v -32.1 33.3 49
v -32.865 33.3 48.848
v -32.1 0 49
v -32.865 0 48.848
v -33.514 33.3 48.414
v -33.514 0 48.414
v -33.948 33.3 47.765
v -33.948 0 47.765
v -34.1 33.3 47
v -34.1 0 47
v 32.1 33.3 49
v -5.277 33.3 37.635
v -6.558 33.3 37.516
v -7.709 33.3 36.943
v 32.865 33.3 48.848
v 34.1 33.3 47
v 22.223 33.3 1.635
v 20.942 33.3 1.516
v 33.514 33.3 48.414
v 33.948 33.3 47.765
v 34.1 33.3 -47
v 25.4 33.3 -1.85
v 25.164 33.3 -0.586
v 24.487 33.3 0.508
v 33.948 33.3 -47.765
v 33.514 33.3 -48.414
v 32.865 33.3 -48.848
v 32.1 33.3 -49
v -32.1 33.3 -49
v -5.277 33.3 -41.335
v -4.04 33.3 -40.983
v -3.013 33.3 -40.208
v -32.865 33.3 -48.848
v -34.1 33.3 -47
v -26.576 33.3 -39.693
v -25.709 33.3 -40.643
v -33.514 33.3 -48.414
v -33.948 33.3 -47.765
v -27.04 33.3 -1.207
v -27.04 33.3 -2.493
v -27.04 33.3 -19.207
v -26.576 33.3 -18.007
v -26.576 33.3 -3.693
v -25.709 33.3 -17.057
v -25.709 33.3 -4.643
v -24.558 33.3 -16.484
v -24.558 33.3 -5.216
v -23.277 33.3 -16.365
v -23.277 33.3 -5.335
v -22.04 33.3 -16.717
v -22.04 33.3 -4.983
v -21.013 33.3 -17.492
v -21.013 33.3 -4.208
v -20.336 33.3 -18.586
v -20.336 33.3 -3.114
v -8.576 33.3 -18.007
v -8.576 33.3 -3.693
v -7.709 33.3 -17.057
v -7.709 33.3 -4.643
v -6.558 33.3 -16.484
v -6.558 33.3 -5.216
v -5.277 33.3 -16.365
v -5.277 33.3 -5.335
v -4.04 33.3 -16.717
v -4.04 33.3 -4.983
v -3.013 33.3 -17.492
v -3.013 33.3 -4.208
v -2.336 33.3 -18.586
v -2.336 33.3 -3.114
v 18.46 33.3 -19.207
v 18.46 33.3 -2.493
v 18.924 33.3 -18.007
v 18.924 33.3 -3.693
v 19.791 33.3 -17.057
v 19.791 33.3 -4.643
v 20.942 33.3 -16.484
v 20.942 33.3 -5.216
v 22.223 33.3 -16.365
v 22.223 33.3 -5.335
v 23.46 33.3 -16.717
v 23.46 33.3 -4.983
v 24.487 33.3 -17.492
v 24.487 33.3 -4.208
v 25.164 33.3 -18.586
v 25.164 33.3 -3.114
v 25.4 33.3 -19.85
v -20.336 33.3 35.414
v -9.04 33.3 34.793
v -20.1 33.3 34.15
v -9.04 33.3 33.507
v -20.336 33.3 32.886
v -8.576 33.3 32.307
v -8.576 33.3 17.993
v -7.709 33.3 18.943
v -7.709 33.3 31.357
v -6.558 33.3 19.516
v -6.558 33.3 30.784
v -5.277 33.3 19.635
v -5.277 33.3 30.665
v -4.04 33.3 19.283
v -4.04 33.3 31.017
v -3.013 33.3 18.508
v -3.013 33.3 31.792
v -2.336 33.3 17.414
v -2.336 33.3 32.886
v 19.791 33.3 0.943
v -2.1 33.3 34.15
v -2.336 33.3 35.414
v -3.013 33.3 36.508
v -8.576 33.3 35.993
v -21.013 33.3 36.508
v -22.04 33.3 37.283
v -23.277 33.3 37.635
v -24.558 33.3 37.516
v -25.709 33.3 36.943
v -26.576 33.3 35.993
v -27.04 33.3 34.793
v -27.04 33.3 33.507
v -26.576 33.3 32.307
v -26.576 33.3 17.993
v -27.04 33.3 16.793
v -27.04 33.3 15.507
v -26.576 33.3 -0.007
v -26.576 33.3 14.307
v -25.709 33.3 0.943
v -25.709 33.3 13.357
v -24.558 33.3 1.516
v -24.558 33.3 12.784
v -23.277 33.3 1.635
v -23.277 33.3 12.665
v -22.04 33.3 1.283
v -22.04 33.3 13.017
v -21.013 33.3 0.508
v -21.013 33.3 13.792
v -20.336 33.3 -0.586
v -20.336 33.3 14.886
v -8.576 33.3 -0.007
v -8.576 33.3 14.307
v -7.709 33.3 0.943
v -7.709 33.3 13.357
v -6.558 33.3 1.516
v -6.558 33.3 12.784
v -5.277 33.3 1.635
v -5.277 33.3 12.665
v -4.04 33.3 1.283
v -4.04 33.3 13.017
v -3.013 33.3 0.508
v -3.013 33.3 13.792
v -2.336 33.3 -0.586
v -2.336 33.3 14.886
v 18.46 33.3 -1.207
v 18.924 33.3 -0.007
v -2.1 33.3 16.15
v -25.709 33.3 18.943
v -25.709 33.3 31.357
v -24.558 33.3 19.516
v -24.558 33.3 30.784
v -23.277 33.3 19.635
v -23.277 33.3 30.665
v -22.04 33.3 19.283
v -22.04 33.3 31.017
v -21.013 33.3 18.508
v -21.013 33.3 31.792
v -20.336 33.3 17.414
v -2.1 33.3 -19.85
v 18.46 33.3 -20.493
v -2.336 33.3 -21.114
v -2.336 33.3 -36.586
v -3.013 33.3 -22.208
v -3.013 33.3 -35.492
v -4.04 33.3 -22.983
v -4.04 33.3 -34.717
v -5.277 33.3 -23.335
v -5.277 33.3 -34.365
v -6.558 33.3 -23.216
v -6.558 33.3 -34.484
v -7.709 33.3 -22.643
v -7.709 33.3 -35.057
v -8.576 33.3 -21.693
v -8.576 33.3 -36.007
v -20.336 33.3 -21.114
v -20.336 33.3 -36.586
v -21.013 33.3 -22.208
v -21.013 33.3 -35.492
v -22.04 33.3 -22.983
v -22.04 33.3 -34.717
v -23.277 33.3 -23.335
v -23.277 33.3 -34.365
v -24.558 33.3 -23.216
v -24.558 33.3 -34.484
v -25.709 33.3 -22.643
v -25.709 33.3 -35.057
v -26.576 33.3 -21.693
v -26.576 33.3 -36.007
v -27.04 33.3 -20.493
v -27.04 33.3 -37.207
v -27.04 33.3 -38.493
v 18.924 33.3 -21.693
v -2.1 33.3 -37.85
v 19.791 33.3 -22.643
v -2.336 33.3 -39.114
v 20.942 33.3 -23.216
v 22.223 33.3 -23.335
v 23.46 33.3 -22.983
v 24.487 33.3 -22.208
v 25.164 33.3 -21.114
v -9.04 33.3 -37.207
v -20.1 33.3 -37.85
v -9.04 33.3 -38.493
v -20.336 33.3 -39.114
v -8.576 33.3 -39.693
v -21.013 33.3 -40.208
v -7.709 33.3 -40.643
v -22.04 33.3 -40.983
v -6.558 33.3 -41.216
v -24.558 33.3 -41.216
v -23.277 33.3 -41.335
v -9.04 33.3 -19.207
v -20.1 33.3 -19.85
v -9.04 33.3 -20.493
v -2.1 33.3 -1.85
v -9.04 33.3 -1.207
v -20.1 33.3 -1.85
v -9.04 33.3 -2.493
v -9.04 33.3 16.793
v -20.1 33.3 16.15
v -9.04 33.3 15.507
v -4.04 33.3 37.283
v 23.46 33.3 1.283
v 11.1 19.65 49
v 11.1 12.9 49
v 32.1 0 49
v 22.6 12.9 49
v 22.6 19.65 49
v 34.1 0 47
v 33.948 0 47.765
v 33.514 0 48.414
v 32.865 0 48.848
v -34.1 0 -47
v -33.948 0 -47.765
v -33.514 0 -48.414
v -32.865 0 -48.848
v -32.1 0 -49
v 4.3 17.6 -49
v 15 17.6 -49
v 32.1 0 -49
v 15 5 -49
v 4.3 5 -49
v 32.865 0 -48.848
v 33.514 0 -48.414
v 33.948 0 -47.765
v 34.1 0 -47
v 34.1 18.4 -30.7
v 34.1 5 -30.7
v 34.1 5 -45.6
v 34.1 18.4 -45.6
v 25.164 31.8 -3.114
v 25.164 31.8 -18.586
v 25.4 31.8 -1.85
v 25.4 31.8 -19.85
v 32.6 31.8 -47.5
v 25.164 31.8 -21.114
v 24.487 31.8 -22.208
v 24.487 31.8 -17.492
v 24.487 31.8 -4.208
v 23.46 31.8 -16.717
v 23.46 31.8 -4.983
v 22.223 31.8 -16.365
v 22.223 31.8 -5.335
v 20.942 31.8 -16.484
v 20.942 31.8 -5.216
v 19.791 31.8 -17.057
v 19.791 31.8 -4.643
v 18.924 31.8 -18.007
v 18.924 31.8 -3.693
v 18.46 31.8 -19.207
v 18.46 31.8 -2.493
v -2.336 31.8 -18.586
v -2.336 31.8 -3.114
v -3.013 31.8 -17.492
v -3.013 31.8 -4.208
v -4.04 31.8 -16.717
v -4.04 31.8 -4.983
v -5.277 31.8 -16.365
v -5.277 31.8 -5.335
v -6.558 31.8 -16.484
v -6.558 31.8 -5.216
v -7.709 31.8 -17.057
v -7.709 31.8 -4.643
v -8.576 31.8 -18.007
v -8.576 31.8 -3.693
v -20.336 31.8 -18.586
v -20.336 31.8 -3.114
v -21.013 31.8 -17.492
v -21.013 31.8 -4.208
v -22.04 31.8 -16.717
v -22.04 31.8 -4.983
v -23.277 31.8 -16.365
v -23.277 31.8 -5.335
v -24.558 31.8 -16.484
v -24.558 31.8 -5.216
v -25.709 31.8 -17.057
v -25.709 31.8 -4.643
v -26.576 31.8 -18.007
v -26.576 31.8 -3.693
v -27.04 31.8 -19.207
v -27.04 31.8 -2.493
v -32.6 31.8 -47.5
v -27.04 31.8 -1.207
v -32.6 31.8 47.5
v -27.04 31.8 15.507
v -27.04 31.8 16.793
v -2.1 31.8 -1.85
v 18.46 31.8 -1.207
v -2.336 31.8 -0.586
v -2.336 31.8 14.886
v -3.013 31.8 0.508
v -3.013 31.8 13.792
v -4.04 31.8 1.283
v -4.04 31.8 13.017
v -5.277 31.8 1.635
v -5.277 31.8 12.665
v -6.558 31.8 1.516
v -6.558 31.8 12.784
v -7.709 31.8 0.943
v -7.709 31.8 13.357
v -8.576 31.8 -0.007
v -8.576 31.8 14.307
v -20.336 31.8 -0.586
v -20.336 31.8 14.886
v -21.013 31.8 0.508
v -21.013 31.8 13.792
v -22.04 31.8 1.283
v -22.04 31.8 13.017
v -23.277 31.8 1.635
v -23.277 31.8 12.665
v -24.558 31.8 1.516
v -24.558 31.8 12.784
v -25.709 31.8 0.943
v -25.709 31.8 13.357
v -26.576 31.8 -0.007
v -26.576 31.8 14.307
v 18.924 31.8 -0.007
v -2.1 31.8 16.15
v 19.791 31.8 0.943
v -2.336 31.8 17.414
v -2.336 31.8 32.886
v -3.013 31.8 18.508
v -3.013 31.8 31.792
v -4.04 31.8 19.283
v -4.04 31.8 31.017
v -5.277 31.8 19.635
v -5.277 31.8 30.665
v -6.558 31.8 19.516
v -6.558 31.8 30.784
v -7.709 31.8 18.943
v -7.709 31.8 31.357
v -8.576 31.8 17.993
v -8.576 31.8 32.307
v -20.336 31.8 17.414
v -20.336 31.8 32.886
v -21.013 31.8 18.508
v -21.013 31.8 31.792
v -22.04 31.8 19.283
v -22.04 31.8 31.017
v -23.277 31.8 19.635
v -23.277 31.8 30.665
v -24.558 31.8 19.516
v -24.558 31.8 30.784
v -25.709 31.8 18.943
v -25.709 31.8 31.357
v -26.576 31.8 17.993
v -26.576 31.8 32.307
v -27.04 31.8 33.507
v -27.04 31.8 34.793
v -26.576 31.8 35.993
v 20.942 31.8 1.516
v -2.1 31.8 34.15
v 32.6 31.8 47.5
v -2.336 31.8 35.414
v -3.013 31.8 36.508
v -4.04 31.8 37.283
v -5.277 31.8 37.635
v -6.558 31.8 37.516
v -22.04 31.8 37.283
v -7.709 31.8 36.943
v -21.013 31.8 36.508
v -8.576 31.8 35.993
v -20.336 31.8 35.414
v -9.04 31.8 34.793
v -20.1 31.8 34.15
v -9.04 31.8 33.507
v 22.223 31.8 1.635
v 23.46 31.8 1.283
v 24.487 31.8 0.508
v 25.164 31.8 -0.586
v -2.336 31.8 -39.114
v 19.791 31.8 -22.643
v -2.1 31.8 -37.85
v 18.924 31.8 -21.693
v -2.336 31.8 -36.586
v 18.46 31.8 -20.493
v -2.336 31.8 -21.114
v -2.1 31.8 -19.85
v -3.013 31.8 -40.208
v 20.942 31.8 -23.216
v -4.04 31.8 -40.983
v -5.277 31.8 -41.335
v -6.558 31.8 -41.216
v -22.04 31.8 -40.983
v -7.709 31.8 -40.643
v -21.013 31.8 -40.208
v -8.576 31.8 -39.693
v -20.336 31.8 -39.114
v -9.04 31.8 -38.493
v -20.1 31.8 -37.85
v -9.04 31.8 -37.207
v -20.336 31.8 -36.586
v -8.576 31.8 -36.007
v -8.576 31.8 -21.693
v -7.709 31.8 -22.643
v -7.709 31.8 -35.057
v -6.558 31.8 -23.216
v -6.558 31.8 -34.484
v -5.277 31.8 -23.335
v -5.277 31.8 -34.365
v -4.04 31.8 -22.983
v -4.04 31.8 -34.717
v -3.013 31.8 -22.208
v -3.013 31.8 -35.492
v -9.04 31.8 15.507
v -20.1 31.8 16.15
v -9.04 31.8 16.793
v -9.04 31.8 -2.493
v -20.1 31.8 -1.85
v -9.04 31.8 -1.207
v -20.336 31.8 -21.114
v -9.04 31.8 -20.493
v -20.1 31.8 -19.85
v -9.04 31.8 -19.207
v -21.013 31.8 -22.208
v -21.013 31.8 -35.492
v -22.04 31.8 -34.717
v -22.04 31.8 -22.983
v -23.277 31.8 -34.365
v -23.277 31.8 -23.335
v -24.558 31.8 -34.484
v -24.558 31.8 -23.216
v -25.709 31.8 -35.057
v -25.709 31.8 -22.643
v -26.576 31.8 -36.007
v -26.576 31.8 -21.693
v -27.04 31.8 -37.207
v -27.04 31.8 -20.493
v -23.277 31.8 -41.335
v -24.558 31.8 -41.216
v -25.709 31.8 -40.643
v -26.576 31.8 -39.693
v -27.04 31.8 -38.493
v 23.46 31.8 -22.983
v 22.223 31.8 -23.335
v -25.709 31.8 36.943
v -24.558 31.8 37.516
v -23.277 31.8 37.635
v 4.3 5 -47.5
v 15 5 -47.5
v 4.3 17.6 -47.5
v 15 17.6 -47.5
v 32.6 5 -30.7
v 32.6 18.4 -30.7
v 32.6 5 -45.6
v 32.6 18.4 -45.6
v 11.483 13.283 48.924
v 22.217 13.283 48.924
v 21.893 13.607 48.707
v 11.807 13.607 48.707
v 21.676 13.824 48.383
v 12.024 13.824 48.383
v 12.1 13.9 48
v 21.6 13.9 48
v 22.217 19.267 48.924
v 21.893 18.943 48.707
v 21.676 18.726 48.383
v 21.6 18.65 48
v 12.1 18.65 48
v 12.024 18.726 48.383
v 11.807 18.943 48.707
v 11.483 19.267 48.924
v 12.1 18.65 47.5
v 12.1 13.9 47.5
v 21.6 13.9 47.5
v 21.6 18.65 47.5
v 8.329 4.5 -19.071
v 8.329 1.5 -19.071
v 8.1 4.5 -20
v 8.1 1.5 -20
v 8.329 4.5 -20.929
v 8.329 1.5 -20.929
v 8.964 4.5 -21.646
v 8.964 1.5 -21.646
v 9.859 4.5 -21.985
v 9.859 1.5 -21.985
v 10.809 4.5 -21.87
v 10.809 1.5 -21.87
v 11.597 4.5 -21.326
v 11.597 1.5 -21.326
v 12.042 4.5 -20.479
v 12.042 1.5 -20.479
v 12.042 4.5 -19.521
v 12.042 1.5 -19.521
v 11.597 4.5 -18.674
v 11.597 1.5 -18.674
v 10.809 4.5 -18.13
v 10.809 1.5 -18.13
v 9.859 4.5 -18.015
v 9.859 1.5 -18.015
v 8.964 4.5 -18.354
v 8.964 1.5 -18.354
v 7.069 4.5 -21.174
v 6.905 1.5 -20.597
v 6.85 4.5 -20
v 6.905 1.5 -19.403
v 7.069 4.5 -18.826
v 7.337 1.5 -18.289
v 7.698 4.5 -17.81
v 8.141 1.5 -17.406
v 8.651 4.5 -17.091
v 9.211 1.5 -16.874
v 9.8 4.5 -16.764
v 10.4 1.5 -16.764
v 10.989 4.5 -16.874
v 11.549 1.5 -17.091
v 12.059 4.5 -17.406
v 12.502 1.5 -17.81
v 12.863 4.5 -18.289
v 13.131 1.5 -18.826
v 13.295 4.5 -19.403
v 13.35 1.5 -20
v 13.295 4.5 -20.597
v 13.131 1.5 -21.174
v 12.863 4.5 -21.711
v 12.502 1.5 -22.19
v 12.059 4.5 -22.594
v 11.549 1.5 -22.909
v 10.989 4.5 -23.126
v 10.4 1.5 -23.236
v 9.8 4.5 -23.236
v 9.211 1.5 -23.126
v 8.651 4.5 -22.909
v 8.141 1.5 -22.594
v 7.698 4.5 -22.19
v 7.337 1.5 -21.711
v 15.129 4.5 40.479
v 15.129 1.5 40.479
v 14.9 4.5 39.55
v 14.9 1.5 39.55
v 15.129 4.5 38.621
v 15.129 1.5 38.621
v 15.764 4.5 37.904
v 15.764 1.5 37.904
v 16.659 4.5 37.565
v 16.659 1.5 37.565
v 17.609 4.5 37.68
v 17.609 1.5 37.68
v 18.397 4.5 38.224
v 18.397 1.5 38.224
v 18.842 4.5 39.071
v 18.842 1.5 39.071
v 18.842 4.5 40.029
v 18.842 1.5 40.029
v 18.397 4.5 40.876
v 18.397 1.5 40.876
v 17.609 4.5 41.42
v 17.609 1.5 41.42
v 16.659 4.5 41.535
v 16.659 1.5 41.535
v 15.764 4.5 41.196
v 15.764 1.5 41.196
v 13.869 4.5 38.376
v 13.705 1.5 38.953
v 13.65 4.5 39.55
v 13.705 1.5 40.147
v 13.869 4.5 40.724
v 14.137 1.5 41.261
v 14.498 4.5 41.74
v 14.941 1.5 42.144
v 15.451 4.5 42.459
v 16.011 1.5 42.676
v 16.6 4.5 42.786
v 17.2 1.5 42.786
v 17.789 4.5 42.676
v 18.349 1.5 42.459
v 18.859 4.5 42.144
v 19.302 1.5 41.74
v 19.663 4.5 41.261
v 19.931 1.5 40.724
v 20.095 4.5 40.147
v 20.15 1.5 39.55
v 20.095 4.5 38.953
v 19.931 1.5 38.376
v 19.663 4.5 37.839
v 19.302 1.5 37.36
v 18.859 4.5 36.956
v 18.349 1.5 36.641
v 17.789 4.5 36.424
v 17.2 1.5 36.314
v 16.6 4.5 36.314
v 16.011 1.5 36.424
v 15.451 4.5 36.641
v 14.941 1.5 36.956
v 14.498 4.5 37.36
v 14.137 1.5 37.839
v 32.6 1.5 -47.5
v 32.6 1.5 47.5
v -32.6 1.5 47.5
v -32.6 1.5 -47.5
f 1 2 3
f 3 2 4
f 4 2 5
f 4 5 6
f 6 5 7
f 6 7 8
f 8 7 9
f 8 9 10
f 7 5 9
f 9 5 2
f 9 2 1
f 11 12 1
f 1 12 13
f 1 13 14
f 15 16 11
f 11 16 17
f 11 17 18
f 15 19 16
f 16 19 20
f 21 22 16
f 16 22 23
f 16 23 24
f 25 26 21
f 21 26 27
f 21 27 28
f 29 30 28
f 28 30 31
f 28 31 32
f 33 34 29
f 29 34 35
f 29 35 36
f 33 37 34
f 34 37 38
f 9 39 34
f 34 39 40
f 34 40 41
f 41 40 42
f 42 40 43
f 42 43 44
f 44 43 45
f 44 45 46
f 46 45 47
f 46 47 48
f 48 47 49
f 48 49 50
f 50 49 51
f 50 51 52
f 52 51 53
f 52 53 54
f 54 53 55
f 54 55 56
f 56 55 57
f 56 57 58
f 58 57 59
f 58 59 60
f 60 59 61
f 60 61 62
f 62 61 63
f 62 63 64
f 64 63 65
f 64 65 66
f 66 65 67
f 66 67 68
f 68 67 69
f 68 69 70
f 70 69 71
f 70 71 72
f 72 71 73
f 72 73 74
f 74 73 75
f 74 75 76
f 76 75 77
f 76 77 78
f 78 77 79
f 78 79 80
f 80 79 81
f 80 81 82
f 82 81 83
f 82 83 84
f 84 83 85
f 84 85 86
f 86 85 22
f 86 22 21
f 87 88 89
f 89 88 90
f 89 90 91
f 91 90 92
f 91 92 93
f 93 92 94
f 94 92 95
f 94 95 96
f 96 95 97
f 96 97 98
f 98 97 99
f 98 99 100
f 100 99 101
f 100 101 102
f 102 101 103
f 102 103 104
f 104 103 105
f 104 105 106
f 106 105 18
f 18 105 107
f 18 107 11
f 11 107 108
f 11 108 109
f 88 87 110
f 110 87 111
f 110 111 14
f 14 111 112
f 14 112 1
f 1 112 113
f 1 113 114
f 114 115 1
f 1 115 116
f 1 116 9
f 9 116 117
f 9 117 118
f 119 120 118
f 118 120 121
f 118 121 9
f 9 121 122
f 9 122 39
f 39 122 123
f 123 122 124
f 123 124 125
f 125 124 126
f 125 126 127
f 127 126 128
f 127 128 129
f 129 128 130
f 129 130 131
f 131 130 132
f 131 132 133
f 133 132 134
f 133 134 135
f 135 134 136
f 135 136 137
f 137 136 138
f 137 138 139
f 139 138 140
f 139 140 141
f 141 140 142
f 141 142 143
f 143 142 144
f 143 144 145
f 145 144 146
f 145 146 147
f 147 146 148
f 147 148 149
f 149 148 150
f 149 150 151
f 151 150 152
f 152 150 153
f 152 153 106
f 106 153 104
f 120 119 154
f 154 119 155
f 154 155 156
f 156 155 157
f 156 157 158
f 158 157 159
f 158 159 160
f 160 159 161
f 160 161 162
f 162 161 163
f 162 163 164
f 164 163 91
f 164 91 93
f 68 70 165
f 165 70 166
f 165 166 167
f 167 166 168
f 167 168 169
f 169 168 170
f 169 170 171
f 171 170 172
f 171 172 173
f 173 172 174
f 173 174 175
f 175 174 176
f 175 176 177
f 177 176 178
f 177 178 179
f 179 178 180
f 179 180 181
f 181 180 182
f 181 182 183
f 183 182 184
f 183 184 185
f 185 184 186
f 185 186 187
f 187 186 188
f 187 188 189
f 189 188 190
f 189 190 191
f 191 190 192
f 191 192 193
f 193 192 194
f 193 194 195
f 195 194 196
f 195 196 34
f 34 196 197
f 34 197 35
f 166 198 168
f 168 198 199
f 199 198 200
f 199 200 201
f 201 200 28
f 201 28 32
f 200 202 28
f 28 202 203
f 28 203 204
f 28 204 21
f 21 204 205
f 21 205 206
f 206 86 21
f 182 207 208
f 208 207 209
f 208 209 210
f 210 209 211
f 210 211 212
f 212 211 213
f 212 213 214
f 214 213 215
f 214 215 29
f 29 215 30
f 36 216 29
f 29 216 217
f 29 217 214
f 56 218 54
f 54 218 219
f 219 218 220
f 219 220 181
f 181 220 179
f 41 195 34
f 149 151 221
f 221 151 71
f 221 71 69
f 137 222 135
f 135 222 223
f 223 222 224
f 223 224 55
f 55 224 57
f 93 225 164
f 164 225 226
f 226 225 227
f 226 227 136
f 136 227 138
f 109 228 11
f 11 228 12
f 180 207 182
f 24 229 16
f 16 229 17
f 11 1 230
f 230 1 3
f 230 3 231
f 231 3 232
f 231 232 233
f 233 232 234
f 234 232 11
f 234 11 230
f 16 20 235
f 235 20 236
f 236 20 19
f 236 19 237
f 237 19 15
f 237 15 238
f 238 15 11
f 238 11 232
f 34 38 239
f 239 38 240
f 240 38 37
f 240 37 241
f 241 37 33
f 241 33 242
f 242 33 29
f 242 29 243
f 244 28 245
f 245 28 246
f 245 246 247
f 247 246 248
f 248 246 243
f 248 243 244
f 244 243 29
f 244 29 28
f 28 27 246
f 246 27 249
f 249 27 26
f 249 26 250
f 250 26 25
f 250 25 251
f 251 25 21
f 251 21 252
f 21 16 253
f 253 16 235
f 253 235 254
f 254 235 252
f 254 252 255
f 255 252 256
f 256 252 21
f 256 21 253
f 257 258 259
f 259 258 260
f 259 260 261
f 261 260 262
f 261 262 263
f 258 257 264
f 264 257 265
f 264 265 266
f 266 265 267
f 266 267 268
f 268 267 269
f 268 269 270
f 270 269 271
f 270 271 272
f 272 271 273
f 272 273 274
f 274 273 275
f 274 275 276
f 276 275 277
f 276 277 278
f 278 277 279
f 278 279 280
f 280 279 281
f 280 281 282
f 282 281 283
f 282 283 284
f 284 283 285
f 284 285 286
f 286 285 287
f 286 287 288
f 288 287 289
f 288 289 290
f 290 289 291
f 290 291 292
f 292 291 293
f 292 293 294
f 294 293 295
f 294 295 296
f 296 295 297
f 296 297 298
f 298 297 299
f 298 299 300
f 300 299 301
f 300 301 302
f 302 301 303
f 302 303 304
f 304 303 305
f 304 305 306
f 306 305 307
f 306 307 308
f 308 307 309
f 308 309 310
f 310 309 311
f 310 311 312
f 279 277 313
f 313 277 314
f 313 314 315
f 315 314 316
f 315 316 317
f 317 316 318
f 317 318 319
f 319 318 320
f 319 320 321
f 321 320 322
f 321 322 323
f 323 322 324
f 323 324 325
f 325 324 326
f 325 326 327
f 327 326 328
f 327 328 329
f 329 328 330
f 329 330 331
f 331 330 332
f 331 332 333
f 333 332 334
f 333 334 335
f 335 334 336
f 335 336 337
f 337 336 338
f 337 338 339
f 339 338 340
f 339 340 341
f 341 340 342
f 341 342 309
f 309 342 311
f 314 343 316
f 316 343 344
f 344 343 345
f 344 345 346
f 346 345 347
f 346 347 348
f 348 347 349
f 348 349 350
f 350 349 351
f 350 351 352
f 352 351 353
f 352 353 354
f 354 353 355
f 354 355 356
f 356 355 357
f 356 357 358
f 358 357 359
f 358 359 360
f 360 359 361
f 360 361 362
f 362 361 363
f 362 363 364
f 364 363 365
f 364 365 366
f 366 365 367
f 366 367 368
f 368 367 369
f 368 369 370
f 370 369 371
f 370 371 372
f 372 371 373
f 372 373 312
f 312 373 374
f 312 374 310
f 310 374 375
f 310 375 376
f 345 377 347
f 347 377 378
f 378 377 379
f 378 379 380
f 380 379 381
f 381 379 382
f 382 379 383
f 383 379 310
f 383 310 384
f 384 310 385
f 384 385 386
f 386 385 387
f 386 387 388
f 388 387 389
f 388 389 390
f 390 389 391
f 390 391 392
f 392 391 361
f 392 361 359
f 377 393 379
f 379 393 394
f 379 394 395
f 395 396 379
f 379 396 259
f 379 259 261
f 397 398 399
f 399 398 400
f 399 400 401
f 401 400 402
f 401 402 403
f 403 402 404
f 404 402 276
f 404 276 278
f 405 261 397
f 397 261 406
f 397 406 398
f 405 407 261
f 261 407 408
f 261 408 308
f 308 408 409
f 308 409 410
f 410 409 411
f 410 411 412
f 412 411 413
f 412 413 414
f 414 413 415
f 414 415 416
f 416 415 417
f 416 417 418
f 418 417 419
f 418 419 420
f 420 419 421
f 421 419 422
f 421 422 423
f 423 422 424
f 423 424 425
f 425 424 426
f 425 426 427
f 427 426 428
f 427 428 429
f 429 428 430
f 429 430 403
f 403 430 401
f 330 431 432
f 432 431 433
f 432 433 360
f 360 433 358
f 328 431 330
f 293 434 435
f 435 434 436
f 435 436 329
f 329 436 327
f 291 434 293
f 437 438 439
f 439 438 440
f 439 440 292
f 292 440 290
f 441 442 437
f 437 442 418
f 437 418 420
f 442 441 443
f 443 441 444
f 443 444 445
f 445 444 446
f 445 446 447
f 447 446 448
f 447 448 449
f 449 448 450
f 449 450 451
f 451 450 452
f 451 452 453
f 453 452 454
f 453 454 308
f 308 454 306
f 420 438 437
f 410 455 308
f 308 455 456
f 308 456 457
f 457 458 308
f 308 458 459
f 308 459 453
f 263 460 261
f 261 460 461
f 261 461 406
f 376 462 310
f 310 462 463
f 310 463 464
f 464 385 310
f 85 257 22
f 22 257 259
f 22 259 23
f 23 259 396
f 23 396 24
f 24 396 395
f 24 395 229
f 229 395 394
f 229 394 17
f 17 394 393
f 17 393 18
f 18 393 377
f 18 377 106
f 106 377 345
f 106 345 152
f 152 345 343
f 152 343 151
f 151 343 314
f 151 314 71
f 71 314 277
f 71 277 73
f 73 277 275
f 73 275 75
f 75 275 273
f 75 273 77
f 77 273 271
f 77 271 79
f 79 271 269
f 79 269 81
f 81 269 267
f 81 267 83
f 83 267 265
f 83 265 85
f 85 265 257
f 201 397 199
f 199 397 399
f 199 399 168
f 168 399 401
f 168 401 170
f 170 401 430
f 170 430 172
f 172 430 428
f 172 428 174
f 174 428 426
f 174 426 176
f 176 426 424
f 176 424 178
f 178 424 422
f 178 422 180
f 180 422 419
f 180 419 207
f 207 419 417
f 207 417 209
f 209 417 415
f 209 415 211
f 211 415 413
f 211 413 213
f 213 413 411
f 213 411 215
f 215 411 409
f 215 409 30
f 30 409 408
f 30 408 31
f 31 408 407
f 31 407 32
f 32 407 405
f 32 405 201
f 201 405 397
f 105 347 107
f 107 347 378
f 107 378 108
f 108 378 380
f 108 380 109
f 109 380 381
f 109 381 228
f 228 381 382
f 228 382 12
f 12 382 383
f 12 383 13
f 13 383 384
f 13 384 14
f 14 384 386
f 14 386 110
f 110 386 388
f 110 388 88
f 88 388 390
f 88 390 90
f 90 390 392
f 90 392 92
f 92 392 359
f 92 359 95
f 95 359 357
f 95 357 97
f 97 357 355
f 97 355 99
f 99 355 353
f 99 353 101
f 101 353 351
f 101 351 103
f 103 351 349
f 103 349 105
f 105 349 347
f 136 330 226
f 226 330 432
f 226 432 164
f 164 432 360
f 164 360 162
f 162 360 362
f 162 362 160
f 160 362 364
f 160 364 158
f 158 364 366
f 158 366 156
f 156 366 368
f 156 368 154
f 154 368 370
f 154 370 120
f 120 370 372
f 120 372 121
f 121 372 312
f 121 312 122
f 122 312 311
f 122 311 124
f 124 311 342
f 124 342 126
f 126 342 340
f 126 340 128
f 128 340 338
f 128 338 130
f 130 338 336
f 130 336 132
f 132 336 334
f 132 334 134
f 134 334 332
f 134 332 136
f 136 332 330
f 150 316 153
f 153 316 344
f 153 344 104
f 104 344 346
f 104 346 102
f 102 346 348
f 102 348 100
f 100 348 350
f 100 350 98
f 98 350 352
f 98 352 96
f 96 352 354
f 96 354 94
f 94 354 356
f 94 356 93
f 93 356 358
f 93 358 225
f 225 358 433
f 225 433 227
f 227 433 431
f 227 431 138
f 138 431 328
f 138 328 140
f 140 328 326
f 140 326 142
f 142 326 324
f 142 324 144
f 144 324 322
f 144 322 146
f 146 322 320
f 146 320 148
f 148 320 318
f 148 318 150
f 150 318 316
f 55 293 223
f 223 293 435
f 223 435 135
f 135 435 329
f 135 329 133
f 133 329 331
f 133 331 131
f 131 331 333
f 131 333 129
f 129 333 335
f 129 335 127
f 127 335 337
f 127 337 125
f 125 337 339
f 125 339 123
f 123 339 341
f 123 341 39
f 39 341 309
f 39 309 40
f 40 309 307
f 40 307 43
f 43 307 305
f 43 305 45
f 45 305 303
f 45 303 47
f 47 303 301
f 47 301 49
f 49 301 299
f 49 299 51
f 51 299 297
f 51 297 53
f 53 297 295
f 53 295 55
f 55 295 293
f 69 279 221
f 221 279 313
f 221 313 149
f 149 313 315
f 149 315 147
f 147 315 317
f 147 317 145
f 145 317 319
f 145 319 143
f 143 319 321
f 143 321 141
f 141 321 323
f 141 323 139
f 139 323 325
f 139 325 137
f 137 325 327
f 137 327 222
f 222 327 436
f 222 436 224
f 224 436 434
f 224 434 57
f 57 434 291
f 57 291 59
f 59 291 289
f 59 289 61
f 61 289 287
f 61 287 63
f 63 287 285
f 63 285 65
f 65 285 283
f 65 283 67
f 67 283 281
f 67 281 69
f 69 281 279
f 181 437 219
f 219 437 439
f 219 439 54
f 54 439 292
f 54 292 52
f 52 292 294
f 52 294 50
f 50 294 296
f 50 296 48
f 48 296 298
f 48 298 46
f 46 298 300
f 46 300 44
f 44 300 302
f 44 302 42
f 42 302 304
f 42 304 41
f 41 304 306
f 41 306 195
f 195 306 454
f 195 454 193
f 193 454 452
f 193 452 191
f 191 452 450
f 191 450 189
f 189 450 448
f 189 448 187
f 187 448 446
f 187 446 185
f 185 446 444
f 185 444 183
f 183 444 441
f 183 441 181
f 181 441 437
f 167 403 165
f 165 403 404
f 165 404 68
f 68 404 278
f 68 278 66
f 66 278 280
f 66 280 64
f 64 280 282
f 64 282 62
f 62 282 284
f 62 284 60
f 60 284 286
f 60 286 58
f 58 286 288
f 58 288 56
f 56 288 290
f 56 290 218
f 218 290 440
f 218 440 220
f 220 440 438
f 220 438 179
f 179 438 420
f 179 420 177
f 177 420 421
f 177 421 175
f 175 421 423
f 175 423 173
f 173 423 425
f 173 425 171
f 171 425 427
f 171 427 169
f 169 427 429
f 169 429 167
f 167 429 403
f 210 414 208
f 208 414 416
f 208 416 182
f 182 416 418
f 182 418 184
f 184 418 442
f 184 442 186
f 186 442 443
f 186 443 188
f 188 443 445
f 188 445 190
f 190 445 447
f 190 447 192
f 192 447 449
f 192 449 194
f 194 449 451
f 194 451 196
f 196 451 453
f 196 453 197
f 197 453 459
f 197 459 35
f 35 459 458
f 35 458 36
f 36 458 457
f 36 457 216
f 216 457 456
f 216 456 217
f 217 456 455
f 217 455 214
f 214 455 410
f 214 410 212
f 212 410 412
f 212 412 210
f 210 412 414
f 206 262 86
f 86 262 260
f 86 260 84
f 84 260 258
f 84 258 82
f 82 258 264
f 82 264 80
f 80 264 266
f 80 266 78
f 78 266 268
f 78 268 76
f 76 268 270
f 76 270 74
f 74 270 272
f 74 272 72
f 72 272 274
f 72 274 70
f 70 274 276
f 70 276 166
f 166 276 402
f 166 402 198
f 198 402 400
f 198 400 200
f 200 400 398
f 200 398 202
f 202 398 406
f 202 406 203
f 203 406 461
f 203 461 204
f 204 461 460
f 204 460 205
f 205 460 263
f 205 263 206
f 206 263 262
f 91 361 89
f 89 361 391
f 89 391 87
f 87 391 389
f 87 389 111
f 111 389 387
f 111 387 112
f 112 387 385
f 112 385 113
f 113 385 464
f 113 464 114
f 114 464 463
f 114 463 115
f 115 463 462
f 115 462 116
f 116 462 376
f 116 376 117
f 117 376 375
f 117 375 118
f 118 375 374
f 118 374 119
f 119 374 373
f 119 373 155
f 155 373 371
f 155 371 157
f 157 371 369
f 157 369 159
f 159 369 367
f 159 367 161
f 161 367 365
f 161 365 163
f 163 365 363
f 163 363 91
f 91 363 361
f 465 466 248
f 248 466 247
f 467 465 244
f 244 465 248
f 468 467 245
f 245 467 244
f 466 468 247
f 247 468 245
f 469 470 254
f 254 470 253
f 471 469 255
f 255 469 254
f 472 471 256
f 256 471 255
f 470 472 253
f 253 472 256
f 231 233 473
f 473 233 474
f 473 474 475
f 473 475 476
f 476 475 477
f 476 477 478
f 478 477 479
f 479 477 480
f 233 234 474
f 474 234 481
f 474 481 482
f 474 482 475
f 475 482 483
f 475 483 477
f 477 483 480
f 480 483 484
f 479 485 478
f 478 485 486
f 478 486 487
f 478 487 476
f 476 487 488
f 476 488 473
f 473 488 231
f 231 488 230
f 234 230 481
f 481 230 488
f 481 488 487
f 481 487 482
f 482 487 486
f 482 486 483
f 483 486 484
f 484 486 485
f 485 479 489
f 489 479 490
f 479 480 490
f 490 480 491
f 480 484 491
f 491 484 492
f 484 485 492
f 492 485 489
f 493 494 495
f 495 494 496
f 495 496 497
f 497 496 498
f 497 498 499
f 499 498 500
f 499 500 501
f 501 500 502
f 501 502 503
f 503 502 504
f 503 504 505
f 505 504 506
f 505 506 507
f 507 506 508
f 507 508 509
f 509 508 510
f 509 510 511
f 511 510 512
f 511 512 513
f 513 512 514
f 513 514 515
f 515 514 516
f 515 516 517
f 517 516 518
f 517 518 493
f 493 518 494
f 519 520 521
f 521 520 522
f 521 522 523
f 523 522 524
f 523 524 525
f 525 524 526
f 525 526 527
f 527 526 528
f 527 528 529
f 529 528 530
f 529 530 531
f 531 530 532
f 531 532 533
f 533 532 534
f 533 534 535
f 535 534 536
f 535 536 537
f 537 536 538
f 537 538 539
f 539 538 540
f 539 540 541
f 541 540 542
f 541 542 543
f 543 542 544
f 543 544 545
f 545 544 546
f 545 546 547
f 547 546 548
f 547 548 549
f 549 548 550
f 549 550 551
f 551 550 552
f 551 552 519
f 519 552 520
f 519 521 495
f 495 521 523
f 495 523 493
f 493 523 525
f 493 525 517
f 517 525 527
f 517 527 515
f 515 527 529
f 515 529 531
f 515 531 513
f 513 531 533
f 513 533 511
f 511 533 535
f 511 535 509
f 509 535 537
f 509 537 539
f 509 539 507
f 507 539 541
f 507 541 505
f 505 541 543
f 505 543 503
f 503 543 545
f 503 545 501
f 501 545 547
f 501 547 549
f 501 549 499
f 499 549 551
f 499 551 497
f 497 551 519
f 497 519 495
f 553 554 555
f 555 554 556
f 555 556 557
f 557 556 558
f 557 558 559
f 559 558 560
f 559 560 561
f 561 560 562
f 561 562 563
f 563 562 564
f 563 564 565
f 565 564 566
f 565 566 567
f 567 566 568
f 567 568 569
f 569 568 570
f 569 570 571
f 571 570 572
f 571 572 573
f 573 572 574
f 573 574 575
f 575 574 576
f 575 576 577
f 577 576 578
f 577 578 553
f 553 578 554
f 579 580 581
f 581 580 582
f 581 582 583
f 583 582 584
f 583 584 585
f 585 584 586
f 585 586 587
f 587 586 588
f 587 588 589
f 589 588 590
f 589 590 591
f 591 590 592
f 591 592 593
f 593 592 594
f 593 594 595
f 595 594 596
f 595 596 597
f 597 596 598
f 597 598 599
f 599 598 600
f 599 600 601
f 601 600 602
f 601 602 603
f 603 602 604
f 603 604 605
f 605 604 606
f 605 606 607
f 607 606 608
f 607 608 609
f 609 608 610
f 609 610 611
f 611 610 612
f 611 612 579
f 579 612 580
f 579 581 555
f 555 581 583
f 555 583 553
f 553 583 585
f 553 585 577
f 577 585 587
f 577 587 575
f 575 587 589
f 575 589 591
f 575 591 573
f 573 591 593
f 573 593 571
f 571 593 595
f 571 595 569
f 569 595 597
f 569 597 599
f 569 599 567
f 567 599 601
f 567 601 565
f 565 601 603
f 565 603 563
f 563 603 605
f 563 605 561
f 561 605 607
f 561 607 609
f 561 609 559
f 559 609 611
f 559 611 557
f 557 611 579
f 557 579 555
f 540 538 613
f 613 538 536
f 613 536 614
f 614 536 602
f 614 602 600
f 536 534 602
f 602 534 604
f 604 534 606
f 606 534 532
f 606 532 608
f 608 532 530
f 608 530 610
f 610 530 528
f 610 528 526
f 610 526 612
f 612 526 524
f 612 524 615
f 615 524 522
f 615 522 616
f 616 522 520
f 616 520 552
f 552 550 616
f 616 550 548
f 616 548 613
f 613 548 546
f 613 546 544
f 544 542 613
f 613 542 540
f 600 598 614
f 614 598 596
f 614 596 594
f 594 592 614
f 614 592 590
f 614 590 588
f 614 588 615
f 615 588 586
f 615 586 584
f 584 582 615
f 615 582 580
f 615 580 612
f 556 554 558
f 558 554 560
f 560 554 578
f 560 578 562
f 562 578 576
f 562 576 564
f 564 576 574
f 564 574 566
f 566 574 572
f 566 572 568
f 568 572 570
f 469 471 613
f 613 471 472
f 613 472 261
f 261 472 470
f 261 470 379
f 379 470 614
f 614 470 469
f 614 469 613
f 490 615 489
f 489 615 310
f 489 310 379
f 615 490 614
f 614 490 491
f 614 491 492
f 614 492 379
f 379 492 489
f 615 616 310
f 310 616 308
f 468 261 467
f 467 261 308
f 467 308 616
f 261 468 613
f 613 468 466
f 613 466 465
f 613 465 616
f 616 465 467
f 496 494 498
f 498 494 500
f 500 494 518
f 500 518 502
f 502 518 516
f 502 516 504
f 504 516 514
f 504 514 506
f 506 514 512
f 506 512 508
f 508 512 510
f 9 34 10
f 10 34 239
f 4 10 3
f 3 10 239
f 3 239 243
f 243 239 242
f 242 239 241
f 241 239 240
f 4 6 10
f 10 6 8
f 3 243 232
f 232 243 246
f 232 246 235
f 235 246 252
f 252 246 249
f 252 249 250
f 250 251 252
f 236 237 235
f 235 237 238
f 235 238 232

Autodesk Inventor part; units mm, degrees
ref_plane "YZ Plane" through (0, 0, 0) normal (1, 0, 0) x (0, 1, 0)
ref_plane "XZ Plane" through (0, 0, 0) normal (0, 1, 0) x (-1, 0, 0)
ref_plane "XY Plane" through (0, 0, 0) normal (0, 0, 1) x (1, 0, 0)
sketch "Sketch1" plane through (0, 0, 0) normal (0, 1, 0) x (-1, 0, 0)
  line L0 (-34.1, -49) -> (34.1, -49)
  line L1 (34.1, -49) -> (34.1, 49)
  line L2 (34.1, 49) -> (-34.1, 49)
  line L3 (-34.1, 49) -> (-34.1, -49)
  line L4 (-34.1, -49) -> (34.1, 49) construction
  line L5 (34.1, -49) -> (-34.1, 49) construction
  circle A0 centre (-16.9, 39.55) radius 2
  circle A1 centre (-16.9, 39.55) radius 3.25
  line L6 (-18.8909, 27.1453) -> (-18.8909, 26.9568)
  circle A2 centre (-10.1, -20) radius 2
  circle A3 centre (-10.1, -20) radius 3.25
  point P0 (0, 0)
  dimension "d0" = 68.2
  dimension "d1" = 98
  dimension "d6" = 4
  dimension "d7" = 6.5
  dimension "d8" = 17.2
  dimension "d9" = 9.45
  dimension "d10" = 24
  dimension "d11" = 29
  dimension "d12" = 4
  dimension "d13" = 6.5
extrude "Extrusion1" add sketch "Sketch1" along normal blind 31.8 contours L3 L2 L1 L0 | A0 | A1 | A2 | A3
shell "Shell1" thickness 1.5 removed faces 1 at (11.3667, 31.8, 16.3333)
extrude "Extrusion2" add sketch "Sketch1" along normal blind 4.5 contours A1 | A3
sketch "Sketch2" plane through (-34.1, 0, 49) normal (0, 0, 1) x (1, 0, 0)
  line L0 (0, 0) -> (68.2, 0) projected
  line L1 (68.2, 0) -> (68.2, 31.8) projected
  line L2 (68.2, 0) -> (68.2, 31.8) projected
  line L3 (68.2, 1.5) -> (40, 1.5)
  line L4 (68, 6) -> (36, 6)
  line L5 (36, 6) -> (36, 4.5)
  line L6 (36, 4.5) -> (68, 4.5)
  line L7 (68, 4.5) -> (68, 6)
  line L8 (47.2, 17.65) -> (54.7, 17.65)
  line L9 (54.7, 17.65) -> (54.7, 14.9)
  line L10 (54.7, 14.9) -> (47.2, 14.9)
  line L11 (47.2, 14.9) -> (47.2, 17.65)
  line L12 (47.2, 17.65) -> (54.7, 14.9)
  line L13 (54.7, 17.65) -> (47.2, 14.9)
  line L14 (55.7, 13.9) -> (46.2, 13.9)
  line L15 (46.2, 13.9) -> (46.2, 18.65)
  line L16 (46.2, 18.65) -> (55.7, 18.65)
  line L17 (55.7, 18.65) -> (55.7, 13.9)
  line L18 (55.7, 13.9) -> (46.2, 18.65) construction
  line L19 (46.2, 13.9) -> (55.7, 18.65) construction
  point P0 (34.1, 0)
  point P1 (50.95, 16.275)
  dimension "d19" = 1.5
  dimension "d20" = 3
  dimension "d21" = 1.5
  dimension "d22" = 8.9
  dimension "d23" = 7.5
  dimension "d24" = 2.75
  dimension "d25" = 13.5
  dimension "d26" = 1
  dimension "d27" = 1
extrude "Extrusion3" cut sketch "Sketch2" against normal blind 4.5 contours L12 L13 L11 | L8 L13 L12 | L9 L12 L13 | L13 L12 L10 | L14 L15 L16 L17
fillet "Fillet1" radius 1 4 edges at (16.85, 18.65, 49) (21.6, 16.275, 49) (16.85, 13.9, 49) (12.1, 16.275, 49)
sketch "Sketch3" plane through (34.1, 0, 49) normal (1, 0, 0) x (0, 0, -1)
  line L0 (0, 0) -> (98, 0) projected
  line L1 (98, 0) -> (98, 31.8) projected
  line L2 (80.7, 17.4) -> (93.6, 17.4)
  line L3 (93.6, 17.4) -> (93.6, 6)
  line L4 (93.6, 6) -> (80.7, 6)
  line L5 (80.7, 6) -> (80.7, 17.4)
  line L6 (80.7, 17.4) -> (93.6, 6) construction
  line L7 (93.6, 17.4) -> (80.7, 6) construction
  line L8 (94.6, 5) -> (79.7, 5)
  line L9 (79.7, 5) -> (79.7, 18.4)
  line L10 (79.7, 18.4) -> (94.6, 18.4)
  line L11 (94.6, 18.4) -> (94.6, 5)
  line L12 (94.6, 5) -> (79.7, 18.4) construction
  line L13 (79.7, 5) -> (94.6, 18.4) construction
  point P0 (49, 0)
  point P1 (87.15, 11.7)
  point P2 (87.15, 11.7)
  dimension "d31" = 6
  dimension "d32" = 4.4
  dimension "d33" = 11.4
  dimension "d34" = 12.9
  dimension "d35" = 1
  dimension "d36" = 1
extrude "Extrusion4" cut sketch "Sketch3" against normal blind 4.5 contours L2 L3 L4 L5 | L8 L9 L10 L11
sketch "Sketch4" plane through (34.1, 0, -49) normal (0, 0, -1) x (-1, 0, 0)
  line L0 (0, 0) -> (68.2, 0) projected
  line L1 (0, 0) -> (0, 31.8) projected
  line L2 (28.8, 6) -> (20.1, 6)
  line L3 (20.1, 6) -> (20.1, 16.6)
  line L4 (20.1, 16.6) -> (28.8, 16.6)
  line L5 (28.8, 16.6) -> (28.8, 6)
  line L6 (28.8, 6) -> (20.1, 16.6) construction
  line L7 (20.1, 6) -> (28.8, 16.6) construction
  line L8 (29.8, 5) -> (19.1, 5)
  line L9 (19.1, 5) -> (19.1, 17.6)
  line L10 (19.1, 17.6) -> (29.8, 17.6)
  line L11 (29.8, 17.6) -> (29.8, 5)
  line L12 (29.8, 5) -> (19.1, 17.6) construction
  line L13 (19.1, 5) -> (29.8, 17.6) construction
  point P0 (34.1, 0)
  point P1 (24.45, 11.3)
  dimension "d39" = 20.1
  dimension "d40" = 6
  dimension "d41" = 8.7
  dimension "d42" = 10.6
  dimension "d43" = 1
  dimension "d44" = 1
extrude "Extrusion5" cut sketch "Sketch4" against normal blind 4.5 contours L2 L3 L4 L5 | L8 L9 L10 L11
sketch "Sketch5" plane through (0, 31.8, 0) normal (0, 1, 0) x (1, 0, 0)
  line L0 (32.6, -47.5) -> (-32.6, -47.5) projected
  line L1 (-32.6, -47.5) -> (-32.6, 47.5) projected
  line L2 (-32.6, 47.5) -> (32.6, 47.5) projected
  line L3 (32.6, 47.5) -> (32.6, -47.5) projected
  line L4 (34.1, -49) -> (34.1, 49) projected
  line L5 (34.1, 49) -> (-34.1, 49) projected
  line L6 (-34.1, 49) -> (-34.1, -49) projected
  line L7 (-34.1, -49) -> (34.1, -49) projected
  line L8 (34.1, -49) -> (-34.1, -49)
  line L9 (-34.1, -49) -> (-34.1, 49)
  line L10 (-34.1, 49) -> (34.1, 49)
  line L11 (34.1, 49) -> (34.1, -49)
  circle A0 centre (-23.6, -34.15) radius 3
  circle A1 centre (-23.6, -34.15) radius 3.5
  circle A2 centre (-5.6, -34.15) radius 3.5
  circle A3 centre (-23.6, -16.15) radius 3.5
  circle A4 centre (-5.6, -16.15) radius 3.5
  circle A5 centre (-23.6, 1.85) radius 3.5
  circle A6 centre (-5.6, 1.85) radius 3.5
  circle A7 centre (-23.6, 19.85) radius 3.5
  circle A8 centre (-5.6, 19.85) radius 3.5
  circle A9 centre (-23.6, 37.85) radius 3.5
  circle A10 centre (-5.6, 37.85) radius 3.5
  circle A11 centre (-5.6, 1.85) radius 3.5
  circle A12 centre (21.9, 19.85) radius 3.5
  circle A13 centre (21.9, 1.85) radius 3.5
  line L12 (34.1, -49) -> (-34.1, -49)
  line L13 (-34.1, -49) -> (-34.1, 49)
  line L14 (-34.1, 49) -> (34.1, 49)
  line L15 (34.1, 49) -> (34.1, -49)
  point P0 (0, 0)
  dimension "d47" = 6
  dimension "d48" = 7
  dimension "d50" = 13.35
  dimension "d51" = 9
  dimension "d54" = 18
  dimension "d57" = 18
  dimension "d62" = 18
  dimension "d65" = 18
  dimension "d70" = 18
  dimension "d73" = 27.5
extrude "Extrusion6" add sketch "Sketch5" along normal blind 1.5 contours L0 L1 L2 L3 | L7 L6 L5 L4
fillet "Fillet2" radius 2 4 edges at (34.1, 16.65, -49) (-34.1, 16.65, -49) (34.1, 16.65, 49) (-34.1, 16.65, 49)
